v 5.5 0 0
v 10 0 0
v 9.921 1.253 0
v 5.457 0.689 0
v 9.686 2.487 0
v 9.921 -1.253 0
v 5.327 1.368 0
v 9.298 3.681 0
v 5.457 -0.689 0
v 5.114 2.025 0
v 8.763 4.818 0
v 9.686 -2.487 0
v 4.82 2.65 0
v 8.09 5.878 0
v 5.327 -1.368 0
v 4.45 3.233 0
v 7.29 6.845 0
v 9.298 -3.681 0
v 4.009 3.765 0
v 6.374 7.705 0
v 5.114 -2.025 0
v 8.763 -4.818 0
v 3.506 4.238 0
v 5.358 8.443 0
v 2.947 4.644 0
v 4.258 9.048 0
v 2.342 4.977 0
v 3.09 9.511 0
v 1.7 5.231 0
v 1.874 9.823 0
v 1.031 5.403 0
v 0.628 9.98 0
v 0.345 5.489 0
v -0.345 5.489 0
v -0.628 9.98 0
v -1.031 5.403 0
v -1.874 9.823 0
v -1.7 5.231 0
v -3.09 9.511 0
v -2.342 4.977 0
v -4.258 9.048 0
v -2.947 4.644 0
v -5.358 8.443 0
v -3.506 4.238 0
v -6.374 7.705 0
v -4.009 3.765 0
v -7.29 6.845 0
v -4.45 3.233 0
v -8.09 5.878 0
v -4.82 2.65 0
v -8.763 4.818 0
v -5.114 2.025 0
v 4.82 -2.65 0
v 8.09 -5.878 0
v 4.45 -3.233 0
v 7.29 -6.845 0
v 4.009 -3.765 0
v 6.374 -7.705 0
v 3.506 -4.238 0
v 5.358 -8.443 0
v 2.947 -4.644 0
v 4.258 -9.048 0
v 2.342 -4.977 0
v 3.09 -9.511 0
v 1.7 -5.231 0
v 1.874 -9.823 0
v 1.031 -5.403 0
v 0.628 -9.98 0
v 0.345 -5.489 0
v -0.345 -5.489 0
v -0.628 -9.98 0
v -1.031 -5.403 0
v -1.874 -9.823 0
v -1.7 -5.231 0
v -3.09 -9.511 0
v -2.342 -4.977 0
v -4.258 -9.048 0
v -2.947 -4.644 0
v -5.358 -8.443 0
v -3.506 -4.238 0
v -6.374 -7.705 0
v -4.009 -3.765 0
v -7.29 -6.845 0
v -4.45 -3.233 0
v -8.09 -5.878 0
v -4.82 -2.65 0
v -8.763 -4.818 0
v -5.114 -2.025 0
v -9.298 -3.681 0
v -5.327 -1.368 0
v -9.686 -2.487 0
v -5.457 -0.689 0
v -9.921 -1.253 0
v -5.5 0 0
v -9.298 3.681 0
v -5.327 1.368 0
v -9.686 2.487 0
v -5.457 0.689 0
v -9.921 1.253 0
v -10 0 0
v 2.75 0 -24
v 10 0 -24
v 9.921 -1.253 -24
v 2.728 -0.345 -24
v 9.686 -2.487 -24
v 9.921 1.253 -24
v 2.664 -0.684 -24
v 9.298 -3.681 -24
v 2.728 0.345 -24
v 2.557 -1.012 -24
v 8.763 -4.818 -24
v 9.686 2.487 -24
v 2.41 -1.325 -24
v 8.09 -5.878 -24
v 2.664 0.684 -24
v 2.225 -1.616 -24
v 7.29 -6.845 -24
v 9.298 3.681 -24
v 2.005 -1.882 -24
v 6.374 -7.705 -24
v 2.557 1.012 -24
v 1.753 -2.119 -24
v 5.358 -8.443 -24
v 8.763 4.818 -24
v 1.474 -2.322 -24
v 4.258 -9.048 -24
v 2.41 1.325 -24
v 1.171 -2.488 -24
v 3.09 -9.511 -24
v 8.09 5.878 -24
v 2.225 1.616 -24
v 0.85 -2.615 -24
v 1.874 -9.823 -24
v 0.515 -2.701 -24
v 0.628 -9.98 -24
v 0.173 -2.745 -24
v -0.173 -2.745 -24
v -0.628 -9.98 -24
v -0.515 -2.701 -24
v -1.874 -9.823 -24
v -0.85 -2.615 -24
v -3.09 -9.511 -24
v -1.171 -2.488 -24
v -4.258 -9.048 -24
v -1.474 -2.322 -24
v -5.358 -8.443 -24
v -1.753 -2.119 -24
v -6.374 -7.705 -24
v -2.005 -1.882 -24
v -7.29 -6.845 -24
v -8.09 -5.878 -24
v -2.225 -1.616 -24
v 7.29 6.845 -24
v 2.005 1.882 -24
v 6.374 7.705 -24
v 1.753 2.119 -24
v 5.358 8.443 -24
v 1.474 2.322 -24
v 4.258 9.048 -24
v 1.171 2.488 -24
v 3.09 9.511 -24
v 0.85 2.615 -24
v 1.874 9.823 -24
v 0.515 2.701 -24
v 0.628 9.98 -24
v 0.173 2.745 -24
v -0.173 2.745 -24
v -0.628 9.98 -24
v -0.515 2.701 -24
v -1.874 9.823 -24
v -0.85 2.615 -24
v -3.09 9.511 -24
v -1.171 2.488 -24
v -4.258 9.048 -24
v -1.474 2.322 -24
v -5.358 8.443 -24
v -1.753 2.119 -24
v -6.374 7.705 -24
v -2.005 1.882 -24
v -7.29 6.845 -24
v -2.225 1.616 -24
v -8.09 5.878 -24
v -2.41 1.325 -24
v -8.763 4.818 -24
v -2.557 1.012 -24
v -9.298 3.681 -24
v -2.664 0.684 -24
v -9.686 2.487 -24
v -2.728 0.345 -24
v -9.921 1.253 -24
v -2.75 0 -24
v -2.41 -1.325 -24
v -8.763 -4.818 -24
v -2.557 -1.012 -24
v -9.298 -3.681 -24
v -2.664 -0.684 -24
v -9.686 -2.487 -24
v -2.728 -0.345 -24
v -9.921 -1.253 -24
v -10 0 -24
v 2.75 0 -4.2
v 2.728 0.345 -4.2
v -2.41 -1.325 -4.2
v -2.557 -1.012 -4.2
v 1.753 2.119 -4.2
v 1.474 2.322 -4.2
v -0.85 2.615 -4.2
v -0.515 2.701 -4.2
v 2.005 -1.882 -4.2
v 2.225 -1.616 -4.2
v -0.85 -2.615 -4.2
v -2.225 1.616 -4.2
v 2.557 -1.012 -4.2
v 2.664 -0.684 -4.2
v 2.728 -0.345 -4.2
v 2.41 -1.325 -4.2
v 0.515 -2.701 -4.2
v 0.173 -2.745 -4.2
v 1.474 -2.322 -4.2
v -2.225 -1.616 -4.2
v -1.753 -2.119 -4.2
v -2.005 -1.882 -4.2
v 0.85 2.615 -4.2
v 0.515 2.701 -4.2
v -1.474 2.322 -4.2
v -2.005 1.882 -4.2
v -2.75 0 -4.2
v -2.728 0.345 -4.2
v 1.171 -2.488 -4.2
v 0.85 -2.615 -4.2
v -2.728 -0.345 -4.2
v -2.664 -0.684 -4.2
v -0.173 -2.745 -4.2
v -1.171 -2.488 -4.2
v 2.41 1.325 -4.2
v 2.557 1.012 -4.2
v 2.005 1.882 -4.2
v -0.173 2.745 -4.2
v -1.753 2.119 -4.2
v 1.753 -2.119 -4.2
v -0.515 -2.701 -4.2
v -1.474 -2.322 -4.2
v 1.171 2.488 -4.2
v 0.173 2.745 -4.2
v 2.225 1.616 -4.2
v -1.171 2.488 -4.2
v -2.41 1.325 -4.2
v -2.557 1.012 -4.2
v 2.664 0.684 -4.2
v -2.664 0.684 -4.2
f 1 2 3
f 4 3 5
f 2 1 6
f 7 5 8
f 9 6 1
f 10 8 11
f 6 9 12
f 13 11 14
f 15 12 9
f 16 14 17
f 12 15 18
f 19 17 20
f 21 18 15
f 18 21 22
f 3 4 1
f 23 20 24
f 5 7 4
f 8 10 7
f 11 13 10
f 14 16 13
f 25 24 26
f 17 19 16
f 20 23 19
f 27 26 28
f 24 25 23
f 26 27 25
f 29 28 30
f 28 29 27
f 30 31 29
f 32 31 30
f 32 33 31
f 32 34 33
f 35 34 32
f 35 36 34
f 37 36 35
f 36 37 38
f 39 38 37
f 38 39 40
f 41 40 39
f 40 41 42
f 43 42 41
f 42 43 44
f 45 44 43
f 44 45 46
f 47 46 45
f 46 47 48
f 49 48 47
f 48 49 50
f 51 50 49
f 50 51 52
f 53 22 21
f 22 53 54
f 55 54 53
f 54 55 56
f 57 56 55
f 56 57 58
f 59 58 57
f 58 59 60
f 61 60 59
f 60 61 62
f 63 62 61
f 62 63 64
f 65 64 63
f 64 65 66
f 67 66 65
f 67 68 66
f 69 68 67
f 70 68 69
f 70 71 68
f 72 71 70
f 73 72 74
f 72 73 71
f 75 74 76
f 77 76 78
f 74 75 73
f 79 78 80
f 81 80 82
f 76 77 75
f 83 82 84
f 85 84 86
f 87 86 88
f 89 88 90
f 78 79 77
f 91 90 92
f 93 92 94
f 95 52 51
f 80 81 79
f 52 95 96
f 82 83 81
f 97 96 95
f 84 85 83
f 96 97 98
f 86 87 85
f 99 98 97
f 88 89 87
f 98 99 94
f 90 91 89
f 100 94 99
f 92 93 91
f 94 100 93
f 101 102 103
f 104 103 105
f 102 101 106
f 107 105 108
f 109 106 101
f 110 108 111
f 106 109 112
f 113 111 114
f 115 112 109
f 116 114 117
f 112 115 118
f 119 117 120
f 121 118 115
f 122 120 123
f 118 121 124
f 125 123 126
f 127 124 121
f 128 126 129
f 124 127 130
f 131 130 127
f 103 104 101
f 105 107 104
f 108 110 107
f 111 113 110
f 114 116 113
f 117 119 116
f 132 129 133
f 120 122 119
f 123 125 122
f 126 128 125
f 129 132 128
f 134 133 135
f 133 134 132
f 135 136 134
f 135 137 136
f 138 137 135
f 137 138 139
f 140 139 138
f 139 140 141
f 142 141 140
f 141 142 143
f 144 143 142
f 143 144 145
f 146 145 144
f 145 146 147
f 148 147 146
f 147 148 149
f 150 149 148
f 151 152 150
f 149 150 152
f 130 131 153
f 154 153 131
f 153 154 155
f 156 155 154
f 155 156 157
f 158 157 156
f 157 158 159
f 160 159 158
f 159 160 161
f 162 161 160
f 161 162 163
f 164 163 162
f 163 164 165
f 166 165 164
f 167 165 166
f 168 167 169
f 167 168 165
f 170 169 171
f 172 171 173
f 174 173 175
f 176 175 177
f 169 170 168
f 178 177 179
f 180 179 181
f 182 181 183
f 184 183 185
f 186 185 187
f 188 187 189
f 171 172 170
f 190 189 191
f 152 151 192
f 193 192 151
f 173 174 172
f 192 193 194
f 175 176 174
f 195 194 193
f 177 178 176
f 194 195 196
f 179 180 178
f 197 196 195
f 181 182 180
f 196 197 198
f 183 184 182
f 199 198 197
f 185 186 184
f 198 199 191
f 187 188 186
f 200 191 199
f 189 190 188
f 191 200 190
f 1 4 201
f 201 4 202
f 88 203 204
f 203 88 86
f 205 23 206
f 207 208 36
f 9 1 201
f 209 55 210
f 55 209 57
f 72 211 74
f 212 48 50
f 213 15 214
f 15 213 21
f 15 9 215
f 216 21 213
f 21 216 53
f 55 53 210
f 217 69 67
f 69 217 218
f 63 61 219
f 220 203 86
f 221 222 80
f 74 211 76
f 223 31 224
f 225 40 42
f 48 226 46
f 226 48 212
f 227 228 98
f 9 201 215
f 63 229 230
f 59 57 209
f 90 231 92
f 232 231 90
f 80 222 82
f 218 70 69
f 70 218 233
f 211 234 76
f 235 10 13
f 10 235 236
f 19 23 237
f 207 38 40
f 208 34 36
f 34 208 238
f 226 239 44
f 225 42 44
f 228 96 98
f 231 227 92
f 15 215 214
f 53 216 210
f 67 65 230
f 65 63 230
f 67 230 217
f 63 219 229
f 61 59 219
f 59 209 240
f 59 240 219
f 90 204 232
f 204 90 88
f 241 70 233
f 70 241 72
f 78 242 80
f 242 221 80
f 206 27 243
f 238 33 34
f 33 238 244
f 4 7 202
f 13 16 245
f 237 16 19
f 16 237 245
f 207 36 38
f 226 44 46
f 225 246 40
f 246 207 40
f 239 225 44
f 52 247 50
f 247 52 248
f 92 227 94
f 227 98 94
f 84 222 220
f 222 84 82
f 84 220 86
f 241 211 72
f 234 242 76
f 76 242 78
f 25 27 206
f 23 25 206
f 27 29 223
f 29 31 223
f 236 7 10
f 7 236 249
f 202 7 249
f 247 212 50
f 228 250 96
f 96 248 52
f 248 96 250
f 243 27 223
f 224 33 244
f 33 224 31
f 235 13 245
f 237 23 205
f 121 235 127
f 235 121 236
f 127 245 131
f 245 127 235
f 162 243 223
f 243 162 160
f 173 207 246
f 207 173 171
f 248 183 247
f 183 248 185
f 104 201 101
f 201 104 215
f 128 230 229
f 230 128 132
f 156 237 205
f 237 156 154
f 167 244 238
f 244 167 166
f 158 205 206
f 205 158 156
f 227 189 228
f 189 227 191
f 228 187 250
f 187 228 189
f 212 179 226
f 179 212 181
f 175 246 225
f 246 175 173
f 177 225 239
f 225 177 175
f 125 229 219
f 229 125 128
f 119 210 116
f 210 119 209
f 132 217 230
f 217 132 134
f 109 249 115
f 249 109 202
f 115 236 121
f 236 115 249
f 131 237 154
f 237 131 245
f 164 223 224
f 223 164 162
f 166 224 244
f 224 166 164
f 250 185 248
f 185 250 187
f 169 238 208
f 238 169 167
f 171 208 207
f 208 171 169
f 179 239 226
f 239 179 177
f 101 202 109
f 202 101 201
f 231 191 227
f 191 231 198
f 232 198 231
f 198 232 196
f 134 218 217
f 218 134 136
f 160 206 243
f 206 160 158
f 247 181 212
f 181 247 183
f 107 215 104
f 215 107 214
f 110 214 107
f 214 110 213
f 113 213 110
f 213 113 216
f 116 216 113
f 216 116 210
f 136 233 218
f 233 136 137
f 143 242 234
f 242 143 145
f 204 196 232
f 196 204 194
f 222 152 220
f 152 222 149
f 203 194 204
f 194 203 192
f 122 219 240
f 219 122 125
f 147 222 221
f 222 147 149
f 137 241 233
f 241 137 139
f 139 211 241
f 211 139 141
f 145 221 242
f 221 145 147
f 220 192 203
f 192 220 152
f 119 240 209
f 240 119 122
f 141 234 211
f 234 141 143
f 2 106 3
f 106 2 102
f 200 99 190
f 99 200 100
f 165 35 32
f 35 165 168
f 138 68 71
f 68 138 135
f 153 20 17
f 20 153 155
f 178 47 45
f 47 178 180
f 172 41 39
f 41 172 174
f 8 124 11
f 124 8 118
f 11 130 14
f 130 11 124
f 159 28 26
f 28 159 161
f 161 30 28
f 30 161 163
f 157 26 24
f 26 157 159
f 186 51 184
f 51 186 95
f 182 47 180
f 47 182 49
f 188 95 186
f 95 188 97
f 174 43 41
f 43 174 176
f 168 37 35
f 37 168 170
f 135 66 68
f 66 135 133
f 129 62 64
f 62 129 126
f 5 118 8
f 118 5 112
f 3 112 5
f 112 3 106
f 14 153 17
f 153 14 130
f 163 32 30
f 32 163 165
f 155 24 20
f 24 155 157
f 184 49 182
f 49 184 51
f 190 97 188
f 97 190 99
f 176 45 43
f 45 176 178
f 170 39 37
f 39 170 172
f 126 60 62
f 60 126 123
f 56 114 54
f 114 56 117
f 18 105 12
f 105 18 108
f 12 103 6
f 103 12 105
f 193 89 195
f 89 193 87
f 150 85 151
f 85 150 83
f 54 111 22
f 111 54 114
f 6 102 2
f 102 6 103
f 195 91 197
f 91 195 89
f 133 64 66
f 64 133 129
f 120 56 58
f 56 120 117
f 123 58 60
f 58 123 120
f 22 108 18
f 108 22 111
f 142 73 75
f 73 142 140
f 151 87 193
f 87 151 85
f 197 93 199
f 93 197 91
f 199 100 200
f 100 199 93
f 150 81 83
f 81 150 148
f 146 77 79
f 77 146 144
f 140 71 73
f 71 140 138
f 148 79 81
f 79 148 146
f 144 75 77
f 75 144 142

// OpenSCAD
$fn = 50;


difference() {
	union() {
		translate(v = [0, 0, -24.0000000000]) {
			cylinder(h = 24, r = 10.0000000000);
		}
		cylinder(h = 0, r = 16.0000000000);
	}
	union() {
		translate(v = [0, 0, 0]) {
			rotate(a = [0, 0, 0]) {
				difference() {
					union() {
						#translate(v = [0, 0, -24.0000000000]) {
							cylinder(h = 24, r = 2.2500000000);
						}
						#translate(v = [0, 0, -4.2000000000]) {
							cylinder(h = 4.2000000000, r1 = 2.7500000000, r2 = 5.5000000000);
						}
						#translate(v = [0, 0, -24.0000000000]) {
							cylinder(h = 24, r = 2.7500000000);
						}
						#translate(v = [0, 0, -24.0000000000]) {
							cylinder(h = 24, r = 2.2500000000);
						}
					}
					union();
				}
			}
		}
	}
}
